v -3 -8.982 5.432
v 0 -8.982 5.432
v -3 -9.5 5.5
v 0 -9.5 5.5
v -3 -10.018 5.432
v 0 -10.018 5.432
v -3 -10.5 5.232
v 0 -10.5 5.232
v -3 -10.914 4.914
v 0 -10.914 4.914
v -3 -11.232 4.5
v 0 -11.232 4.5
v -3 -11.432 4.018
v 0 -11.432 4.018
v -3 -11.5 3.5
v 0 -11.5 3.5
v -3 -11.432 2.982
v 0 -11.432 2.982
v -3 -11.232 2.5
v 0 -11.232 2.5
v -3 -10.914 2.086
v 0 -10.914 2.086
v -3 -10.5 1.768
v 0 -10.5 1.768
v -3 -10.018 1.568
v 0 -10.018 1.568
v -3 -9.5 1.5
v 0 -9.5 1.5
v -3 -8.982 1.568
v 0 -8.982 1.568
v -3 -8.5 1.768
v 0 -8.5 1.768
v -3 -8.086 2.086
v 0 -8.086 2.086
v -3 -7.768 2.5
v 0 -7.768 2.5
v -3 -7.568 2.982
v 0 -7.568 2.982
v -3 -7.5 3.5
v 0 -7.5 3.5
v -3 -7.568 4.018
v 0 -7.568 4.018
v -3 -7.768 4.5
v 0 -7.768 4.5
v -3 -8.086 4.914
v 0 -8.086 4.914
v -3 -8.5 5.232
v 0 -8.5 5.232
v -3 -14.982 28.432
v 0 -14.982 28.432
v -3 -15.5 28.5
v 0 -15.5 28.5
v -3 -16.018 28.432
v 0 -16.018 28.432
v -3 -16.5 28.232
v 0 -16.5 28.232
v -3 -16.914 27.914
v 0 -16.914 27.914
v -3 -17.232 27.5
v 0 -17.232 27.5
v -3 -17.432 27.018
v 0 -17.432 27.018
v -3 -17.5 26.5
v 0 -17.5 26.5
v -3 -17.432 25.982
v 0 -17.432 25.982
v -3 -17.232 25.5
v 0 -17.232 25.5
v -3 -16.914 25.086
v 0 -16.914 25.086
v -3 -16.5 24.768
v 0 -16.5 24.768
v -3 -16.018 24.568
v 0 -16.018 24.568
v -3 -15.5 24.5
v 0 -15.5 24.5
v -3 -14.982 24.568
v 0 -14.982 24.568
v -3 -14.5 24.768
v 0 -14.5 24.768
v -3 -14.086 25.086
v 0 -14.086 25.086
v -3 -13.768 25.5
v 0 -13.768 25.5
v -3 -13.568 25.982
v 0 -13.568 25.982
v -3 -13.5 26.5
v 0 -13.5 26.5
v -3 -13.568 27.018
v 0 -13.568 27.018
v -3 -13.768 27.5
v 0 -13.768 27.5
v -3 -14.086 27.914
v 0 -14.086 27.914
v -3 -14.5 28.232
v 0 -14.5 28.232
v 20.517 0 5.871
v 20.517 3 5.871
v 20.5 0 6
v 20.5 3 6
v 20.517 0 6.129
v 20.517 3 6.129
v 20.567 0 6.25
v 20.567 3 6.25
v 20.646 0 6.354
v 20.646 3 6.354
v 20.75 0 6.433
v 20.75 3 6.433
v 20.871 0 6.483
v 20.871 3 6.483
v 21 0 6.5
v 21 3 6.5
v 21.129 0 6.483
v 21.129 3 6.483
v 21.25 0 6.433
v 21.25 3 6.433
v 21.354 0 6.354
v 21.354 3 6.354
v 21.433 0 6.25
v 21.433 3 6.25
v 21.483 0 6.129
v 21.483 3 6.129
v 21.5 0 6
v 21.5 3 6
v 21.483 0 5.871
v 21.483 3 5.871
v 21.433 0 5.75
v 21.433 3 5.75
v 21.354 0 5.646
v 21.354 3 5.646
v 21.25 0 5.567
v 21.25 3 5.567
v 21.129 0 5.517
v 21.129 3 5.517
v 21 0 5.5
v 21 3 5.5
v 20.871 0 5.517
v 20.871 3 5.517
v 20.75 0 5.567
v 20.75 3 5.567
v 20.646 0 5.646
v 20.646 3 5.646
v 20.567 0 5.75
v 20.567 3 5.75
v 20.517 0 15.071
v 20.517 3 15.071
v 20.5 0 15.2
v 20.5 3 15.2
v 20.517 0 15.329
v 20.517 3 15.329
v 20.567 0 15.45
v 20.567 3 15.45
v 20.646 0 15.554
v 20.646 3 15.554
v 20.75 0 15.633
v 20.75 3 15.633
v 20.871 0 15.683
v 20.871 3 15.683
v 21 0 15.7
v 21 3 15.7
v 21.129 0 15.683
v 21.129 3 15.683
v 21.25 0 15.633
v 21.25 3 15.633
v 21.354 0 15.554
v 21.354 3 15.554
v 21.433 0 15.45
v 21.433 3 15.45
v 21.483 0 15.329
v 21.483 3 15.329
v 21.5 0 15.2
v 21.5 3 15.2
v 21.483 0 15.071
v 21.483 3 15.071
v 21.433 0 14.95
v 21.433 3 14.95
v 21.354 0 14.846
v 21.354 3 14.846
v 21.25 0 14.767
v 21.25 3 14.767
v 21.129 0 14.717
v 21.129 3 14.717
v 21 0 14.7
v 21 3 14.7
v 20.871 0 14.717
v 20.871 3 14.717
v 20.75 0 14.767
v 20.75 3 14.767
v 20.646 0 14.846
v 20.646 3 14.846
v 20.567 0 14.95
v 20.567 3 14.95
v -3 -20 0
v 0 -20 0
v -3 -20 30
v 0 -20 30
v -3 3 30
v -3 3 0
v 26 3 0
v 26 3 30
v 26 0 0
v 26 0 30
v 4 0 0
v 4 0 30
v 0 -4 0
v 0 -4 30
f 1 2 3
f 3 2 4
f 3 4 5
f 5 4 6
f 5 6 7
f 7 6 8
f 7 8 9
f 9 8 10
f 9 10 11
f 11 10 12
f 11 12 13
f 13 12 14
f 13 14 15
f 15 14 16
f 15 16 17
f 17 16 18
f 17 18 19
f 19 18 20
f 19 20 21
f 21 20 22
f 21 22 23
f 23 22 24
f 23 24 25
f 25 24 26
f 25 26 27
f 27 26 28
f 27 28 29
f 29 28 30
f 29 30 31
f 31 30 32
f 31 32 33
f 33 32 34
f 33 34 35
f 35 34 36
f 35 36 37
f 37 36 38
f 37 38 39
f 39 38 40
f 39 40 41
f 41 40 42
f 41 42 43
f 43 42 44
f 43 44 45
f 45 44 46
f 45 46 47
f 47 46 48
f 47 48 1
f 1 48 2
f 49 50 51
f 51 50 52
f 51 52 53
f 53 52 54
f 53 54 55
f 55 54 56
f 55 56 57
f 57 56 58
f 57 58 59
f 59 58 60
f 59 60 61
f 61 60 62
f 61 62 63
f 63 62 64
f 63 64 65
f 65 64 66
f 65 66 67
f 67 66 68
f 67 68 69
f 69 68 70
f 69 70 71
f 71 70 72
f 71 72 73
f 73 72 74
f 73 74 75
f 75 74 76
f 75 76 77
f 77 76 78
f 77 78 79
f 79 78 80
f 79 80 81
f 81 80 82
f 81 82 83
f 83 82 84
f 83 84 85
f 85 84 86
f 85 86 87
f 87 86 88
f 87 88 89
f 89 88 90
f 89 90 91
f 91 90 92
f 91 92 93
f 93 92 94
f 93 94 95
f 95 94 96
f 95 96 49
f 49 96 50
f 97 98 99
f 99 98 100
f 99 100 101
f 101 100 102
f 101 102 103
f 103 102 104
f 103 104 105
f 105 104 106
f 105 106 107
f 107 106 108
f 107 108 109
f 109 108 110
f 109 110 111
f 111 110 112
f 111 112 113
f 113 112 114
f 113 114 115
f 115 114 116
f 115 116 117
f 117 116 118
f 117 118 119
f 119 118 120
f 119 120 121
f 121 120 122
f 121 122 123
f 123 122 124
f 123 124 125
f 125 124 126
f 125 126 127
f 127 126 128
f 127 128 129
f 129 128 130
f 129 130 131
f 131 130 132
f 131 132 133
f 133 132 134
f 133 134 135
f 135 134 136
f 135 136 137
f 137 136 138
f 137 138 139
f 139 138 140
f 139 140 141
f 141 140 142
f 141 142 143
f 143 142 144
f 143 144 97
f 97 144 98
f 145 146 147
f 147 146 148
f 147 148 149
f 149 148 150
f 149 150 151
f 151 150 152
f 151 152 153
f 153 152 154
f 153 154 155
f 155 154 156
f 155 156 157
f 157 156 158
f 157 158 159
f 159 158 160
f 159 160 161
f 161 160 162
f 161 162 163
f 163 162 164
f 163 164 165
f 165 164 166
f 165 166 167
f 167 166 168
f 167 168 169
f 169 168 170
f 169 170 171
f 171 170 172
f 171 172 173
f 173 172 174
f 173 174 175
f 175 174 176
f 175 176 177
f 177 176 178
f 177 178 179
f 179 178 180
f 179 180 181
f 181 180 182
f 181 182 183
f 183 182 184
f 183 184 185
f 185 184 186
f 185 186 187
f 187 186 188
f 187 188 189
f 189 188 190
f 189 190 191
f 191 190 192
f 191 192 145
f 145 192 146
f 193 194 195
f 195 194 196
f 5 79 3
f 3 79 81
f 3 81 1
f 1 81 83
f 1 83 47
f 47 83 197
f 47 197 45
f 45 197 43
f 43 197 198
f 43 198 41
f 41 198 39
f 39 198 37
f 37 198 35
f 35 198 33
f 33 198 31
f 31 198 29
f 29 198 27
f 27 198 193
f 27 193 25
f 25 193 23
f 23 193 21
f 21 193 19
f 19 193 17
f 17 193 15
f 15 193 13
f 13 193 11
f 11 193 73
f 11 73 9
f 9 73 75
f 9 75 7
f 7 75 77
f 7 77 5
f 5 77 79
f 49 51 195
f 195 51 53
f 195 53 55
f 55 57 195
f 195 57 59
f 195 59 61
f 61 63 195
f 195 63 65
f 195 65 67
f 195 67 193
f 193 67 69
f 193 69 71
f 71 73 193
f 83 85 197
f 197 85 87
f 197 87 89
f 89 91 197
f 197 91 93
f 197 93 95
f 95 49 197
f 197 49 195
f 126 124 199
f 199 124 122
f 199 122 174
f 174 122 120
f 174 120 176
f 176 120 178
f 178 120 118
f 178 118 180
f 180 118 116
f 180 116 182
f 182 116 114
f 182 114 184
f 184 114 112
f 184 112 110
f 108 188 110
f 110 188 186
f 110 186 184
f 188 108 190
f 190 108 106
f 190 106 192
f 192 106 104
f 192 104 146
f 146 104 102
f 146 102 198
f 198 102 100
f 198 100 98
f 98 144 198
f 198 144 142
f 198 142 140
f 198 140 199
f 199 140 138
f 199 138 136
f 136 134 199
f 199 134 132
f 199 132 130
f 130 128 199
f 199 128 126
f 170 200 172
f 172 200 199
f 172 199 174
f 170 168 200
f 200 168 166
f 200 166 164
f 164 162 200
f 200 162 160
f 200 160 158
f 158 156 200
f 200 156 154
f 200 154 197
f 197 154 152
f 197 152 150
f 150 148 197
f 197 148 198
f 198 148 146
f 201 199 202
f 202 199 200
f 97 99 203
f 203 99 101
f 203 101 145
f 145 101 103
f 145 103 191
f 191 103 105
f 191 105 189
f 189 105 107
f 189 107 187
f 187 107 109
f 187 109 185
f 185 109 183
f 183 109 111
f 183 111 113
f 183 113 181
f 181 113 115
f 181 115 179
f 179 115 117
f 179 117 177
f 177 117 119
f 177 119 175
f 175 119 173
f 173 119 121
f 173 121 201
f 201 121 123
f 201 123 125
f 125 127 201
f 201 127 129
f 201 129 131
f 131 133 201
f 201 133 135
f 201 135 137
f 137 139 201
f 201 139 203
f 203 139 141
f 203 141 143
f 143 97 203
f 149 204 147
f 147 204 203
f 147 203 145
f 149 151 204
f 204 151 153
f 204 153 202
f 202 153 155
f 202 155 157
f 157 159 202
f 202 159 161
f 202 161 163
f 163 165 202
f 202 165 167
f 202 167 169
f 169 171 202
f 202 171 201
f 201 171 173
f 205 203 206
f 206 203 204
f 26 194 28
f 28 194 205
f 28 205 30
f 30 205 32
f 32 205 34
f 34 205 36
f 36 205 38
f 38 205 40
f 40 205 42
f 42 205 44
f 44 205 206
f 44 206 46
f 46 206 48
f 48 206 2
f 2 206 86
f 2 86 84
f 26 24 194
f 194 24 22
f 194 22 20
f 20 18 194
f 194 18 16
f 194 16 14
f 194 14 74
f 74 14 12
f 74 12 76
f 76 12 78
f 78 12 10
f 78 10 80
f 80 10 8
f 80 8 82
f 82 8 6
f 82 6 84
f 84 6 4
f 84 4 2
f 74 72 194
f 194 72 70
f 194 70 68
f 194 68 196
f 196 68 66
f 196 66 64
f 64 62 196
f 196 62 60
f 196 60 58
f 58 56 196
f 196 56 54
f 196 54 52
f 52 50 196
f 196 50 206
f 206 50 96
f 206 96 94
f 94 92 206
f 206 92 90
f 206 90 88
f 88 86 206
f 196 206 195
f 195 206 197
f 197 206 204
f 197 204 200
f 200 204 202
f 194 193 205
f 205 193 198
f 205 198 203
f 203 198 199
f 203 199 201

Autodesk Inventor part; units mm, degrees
ref_plane "YZ Plane" through (0, 0, 0) normal (1, 0, 0) x (0, 1, 0)
ref_plane "XZ Plane" through (0, 0, 0) normal (0, 1, 0) x (-1, 0, 0)
ref_plane "XY Plane" through (0, 0, 0) normal (0, 0, 1) x (1, 0, 0)
sketch "Sketch1" plane through (0, 0, 0) normal (0, 0, 1) x (1, 0, 0)
  line L0 (0, -4) -> (0, -20)
  line L1 (4, 0) -> (26, 0)
  line L2 (26, 3) -> (-3, 3)
  line L3 (-3, 3) -> (-3, -20)
  line L4 (26, 3) -> (26, 0)
  line L5 (0, -20) -> (-3, -20)
  line L6 (4, 0) -> (0, -4)
  point P0 (0, 0)
  point P1 (0, 0)
  dimension "d0" = 20
  dimension "d1" = 26
  dimension "d2" = 3
  dimension "d5" = 4
  dimension "d6" = 4
extrude "Extrusion1" add sketch "Sketch1" along normal blind 30
sketch "Sketch2" plane through (-3, 3, 0) normal (0, 1, 0) x (1, 0, 0)
  line L0 (29, 0) -> (0, 0) projected
  line L1 (29, 0) -> (29, -30) projected
  point P0 (3, 0)
  point P1 (24, -6)
  point P2 (24, -15.2)
  dimension "d9" = 9.2
  dimension "d10" = 6
  dimension "d11" = 5
  dimension "d12" = 5
hole "Hole1" at (21, 3, 6) at (21, 3, 15.2) direction (0, -1, 0) diameter 1 end through all
sketch "Sketch3" plane through (0, -20, 0) normal (1, 0, 0) x (0, 0, -1)
  line L0 (0, 0) -> (0, 16) projected
  line L1 (0, 0) -> (-30, 0) projected
  line L2 (0, 16) -> (-30, 16) projected
  point P0 (0, 20)
  point P1 (-3.5, 10.5)
  point P2 (-26.5, 4.5)
  dimension "d20" = 3.5
  dimension "d29" = 5.5
  dimension "d30" = 23
  dimension "d31" = 6
hole "Hole2" at (0, -9.5, 3.5) at (0, -15.5, 26.5) direction (-1, 0, 0) diameter 4 end through all
equation "\"d6\" = d5"
properties part number "Estrutura - SensorX"
